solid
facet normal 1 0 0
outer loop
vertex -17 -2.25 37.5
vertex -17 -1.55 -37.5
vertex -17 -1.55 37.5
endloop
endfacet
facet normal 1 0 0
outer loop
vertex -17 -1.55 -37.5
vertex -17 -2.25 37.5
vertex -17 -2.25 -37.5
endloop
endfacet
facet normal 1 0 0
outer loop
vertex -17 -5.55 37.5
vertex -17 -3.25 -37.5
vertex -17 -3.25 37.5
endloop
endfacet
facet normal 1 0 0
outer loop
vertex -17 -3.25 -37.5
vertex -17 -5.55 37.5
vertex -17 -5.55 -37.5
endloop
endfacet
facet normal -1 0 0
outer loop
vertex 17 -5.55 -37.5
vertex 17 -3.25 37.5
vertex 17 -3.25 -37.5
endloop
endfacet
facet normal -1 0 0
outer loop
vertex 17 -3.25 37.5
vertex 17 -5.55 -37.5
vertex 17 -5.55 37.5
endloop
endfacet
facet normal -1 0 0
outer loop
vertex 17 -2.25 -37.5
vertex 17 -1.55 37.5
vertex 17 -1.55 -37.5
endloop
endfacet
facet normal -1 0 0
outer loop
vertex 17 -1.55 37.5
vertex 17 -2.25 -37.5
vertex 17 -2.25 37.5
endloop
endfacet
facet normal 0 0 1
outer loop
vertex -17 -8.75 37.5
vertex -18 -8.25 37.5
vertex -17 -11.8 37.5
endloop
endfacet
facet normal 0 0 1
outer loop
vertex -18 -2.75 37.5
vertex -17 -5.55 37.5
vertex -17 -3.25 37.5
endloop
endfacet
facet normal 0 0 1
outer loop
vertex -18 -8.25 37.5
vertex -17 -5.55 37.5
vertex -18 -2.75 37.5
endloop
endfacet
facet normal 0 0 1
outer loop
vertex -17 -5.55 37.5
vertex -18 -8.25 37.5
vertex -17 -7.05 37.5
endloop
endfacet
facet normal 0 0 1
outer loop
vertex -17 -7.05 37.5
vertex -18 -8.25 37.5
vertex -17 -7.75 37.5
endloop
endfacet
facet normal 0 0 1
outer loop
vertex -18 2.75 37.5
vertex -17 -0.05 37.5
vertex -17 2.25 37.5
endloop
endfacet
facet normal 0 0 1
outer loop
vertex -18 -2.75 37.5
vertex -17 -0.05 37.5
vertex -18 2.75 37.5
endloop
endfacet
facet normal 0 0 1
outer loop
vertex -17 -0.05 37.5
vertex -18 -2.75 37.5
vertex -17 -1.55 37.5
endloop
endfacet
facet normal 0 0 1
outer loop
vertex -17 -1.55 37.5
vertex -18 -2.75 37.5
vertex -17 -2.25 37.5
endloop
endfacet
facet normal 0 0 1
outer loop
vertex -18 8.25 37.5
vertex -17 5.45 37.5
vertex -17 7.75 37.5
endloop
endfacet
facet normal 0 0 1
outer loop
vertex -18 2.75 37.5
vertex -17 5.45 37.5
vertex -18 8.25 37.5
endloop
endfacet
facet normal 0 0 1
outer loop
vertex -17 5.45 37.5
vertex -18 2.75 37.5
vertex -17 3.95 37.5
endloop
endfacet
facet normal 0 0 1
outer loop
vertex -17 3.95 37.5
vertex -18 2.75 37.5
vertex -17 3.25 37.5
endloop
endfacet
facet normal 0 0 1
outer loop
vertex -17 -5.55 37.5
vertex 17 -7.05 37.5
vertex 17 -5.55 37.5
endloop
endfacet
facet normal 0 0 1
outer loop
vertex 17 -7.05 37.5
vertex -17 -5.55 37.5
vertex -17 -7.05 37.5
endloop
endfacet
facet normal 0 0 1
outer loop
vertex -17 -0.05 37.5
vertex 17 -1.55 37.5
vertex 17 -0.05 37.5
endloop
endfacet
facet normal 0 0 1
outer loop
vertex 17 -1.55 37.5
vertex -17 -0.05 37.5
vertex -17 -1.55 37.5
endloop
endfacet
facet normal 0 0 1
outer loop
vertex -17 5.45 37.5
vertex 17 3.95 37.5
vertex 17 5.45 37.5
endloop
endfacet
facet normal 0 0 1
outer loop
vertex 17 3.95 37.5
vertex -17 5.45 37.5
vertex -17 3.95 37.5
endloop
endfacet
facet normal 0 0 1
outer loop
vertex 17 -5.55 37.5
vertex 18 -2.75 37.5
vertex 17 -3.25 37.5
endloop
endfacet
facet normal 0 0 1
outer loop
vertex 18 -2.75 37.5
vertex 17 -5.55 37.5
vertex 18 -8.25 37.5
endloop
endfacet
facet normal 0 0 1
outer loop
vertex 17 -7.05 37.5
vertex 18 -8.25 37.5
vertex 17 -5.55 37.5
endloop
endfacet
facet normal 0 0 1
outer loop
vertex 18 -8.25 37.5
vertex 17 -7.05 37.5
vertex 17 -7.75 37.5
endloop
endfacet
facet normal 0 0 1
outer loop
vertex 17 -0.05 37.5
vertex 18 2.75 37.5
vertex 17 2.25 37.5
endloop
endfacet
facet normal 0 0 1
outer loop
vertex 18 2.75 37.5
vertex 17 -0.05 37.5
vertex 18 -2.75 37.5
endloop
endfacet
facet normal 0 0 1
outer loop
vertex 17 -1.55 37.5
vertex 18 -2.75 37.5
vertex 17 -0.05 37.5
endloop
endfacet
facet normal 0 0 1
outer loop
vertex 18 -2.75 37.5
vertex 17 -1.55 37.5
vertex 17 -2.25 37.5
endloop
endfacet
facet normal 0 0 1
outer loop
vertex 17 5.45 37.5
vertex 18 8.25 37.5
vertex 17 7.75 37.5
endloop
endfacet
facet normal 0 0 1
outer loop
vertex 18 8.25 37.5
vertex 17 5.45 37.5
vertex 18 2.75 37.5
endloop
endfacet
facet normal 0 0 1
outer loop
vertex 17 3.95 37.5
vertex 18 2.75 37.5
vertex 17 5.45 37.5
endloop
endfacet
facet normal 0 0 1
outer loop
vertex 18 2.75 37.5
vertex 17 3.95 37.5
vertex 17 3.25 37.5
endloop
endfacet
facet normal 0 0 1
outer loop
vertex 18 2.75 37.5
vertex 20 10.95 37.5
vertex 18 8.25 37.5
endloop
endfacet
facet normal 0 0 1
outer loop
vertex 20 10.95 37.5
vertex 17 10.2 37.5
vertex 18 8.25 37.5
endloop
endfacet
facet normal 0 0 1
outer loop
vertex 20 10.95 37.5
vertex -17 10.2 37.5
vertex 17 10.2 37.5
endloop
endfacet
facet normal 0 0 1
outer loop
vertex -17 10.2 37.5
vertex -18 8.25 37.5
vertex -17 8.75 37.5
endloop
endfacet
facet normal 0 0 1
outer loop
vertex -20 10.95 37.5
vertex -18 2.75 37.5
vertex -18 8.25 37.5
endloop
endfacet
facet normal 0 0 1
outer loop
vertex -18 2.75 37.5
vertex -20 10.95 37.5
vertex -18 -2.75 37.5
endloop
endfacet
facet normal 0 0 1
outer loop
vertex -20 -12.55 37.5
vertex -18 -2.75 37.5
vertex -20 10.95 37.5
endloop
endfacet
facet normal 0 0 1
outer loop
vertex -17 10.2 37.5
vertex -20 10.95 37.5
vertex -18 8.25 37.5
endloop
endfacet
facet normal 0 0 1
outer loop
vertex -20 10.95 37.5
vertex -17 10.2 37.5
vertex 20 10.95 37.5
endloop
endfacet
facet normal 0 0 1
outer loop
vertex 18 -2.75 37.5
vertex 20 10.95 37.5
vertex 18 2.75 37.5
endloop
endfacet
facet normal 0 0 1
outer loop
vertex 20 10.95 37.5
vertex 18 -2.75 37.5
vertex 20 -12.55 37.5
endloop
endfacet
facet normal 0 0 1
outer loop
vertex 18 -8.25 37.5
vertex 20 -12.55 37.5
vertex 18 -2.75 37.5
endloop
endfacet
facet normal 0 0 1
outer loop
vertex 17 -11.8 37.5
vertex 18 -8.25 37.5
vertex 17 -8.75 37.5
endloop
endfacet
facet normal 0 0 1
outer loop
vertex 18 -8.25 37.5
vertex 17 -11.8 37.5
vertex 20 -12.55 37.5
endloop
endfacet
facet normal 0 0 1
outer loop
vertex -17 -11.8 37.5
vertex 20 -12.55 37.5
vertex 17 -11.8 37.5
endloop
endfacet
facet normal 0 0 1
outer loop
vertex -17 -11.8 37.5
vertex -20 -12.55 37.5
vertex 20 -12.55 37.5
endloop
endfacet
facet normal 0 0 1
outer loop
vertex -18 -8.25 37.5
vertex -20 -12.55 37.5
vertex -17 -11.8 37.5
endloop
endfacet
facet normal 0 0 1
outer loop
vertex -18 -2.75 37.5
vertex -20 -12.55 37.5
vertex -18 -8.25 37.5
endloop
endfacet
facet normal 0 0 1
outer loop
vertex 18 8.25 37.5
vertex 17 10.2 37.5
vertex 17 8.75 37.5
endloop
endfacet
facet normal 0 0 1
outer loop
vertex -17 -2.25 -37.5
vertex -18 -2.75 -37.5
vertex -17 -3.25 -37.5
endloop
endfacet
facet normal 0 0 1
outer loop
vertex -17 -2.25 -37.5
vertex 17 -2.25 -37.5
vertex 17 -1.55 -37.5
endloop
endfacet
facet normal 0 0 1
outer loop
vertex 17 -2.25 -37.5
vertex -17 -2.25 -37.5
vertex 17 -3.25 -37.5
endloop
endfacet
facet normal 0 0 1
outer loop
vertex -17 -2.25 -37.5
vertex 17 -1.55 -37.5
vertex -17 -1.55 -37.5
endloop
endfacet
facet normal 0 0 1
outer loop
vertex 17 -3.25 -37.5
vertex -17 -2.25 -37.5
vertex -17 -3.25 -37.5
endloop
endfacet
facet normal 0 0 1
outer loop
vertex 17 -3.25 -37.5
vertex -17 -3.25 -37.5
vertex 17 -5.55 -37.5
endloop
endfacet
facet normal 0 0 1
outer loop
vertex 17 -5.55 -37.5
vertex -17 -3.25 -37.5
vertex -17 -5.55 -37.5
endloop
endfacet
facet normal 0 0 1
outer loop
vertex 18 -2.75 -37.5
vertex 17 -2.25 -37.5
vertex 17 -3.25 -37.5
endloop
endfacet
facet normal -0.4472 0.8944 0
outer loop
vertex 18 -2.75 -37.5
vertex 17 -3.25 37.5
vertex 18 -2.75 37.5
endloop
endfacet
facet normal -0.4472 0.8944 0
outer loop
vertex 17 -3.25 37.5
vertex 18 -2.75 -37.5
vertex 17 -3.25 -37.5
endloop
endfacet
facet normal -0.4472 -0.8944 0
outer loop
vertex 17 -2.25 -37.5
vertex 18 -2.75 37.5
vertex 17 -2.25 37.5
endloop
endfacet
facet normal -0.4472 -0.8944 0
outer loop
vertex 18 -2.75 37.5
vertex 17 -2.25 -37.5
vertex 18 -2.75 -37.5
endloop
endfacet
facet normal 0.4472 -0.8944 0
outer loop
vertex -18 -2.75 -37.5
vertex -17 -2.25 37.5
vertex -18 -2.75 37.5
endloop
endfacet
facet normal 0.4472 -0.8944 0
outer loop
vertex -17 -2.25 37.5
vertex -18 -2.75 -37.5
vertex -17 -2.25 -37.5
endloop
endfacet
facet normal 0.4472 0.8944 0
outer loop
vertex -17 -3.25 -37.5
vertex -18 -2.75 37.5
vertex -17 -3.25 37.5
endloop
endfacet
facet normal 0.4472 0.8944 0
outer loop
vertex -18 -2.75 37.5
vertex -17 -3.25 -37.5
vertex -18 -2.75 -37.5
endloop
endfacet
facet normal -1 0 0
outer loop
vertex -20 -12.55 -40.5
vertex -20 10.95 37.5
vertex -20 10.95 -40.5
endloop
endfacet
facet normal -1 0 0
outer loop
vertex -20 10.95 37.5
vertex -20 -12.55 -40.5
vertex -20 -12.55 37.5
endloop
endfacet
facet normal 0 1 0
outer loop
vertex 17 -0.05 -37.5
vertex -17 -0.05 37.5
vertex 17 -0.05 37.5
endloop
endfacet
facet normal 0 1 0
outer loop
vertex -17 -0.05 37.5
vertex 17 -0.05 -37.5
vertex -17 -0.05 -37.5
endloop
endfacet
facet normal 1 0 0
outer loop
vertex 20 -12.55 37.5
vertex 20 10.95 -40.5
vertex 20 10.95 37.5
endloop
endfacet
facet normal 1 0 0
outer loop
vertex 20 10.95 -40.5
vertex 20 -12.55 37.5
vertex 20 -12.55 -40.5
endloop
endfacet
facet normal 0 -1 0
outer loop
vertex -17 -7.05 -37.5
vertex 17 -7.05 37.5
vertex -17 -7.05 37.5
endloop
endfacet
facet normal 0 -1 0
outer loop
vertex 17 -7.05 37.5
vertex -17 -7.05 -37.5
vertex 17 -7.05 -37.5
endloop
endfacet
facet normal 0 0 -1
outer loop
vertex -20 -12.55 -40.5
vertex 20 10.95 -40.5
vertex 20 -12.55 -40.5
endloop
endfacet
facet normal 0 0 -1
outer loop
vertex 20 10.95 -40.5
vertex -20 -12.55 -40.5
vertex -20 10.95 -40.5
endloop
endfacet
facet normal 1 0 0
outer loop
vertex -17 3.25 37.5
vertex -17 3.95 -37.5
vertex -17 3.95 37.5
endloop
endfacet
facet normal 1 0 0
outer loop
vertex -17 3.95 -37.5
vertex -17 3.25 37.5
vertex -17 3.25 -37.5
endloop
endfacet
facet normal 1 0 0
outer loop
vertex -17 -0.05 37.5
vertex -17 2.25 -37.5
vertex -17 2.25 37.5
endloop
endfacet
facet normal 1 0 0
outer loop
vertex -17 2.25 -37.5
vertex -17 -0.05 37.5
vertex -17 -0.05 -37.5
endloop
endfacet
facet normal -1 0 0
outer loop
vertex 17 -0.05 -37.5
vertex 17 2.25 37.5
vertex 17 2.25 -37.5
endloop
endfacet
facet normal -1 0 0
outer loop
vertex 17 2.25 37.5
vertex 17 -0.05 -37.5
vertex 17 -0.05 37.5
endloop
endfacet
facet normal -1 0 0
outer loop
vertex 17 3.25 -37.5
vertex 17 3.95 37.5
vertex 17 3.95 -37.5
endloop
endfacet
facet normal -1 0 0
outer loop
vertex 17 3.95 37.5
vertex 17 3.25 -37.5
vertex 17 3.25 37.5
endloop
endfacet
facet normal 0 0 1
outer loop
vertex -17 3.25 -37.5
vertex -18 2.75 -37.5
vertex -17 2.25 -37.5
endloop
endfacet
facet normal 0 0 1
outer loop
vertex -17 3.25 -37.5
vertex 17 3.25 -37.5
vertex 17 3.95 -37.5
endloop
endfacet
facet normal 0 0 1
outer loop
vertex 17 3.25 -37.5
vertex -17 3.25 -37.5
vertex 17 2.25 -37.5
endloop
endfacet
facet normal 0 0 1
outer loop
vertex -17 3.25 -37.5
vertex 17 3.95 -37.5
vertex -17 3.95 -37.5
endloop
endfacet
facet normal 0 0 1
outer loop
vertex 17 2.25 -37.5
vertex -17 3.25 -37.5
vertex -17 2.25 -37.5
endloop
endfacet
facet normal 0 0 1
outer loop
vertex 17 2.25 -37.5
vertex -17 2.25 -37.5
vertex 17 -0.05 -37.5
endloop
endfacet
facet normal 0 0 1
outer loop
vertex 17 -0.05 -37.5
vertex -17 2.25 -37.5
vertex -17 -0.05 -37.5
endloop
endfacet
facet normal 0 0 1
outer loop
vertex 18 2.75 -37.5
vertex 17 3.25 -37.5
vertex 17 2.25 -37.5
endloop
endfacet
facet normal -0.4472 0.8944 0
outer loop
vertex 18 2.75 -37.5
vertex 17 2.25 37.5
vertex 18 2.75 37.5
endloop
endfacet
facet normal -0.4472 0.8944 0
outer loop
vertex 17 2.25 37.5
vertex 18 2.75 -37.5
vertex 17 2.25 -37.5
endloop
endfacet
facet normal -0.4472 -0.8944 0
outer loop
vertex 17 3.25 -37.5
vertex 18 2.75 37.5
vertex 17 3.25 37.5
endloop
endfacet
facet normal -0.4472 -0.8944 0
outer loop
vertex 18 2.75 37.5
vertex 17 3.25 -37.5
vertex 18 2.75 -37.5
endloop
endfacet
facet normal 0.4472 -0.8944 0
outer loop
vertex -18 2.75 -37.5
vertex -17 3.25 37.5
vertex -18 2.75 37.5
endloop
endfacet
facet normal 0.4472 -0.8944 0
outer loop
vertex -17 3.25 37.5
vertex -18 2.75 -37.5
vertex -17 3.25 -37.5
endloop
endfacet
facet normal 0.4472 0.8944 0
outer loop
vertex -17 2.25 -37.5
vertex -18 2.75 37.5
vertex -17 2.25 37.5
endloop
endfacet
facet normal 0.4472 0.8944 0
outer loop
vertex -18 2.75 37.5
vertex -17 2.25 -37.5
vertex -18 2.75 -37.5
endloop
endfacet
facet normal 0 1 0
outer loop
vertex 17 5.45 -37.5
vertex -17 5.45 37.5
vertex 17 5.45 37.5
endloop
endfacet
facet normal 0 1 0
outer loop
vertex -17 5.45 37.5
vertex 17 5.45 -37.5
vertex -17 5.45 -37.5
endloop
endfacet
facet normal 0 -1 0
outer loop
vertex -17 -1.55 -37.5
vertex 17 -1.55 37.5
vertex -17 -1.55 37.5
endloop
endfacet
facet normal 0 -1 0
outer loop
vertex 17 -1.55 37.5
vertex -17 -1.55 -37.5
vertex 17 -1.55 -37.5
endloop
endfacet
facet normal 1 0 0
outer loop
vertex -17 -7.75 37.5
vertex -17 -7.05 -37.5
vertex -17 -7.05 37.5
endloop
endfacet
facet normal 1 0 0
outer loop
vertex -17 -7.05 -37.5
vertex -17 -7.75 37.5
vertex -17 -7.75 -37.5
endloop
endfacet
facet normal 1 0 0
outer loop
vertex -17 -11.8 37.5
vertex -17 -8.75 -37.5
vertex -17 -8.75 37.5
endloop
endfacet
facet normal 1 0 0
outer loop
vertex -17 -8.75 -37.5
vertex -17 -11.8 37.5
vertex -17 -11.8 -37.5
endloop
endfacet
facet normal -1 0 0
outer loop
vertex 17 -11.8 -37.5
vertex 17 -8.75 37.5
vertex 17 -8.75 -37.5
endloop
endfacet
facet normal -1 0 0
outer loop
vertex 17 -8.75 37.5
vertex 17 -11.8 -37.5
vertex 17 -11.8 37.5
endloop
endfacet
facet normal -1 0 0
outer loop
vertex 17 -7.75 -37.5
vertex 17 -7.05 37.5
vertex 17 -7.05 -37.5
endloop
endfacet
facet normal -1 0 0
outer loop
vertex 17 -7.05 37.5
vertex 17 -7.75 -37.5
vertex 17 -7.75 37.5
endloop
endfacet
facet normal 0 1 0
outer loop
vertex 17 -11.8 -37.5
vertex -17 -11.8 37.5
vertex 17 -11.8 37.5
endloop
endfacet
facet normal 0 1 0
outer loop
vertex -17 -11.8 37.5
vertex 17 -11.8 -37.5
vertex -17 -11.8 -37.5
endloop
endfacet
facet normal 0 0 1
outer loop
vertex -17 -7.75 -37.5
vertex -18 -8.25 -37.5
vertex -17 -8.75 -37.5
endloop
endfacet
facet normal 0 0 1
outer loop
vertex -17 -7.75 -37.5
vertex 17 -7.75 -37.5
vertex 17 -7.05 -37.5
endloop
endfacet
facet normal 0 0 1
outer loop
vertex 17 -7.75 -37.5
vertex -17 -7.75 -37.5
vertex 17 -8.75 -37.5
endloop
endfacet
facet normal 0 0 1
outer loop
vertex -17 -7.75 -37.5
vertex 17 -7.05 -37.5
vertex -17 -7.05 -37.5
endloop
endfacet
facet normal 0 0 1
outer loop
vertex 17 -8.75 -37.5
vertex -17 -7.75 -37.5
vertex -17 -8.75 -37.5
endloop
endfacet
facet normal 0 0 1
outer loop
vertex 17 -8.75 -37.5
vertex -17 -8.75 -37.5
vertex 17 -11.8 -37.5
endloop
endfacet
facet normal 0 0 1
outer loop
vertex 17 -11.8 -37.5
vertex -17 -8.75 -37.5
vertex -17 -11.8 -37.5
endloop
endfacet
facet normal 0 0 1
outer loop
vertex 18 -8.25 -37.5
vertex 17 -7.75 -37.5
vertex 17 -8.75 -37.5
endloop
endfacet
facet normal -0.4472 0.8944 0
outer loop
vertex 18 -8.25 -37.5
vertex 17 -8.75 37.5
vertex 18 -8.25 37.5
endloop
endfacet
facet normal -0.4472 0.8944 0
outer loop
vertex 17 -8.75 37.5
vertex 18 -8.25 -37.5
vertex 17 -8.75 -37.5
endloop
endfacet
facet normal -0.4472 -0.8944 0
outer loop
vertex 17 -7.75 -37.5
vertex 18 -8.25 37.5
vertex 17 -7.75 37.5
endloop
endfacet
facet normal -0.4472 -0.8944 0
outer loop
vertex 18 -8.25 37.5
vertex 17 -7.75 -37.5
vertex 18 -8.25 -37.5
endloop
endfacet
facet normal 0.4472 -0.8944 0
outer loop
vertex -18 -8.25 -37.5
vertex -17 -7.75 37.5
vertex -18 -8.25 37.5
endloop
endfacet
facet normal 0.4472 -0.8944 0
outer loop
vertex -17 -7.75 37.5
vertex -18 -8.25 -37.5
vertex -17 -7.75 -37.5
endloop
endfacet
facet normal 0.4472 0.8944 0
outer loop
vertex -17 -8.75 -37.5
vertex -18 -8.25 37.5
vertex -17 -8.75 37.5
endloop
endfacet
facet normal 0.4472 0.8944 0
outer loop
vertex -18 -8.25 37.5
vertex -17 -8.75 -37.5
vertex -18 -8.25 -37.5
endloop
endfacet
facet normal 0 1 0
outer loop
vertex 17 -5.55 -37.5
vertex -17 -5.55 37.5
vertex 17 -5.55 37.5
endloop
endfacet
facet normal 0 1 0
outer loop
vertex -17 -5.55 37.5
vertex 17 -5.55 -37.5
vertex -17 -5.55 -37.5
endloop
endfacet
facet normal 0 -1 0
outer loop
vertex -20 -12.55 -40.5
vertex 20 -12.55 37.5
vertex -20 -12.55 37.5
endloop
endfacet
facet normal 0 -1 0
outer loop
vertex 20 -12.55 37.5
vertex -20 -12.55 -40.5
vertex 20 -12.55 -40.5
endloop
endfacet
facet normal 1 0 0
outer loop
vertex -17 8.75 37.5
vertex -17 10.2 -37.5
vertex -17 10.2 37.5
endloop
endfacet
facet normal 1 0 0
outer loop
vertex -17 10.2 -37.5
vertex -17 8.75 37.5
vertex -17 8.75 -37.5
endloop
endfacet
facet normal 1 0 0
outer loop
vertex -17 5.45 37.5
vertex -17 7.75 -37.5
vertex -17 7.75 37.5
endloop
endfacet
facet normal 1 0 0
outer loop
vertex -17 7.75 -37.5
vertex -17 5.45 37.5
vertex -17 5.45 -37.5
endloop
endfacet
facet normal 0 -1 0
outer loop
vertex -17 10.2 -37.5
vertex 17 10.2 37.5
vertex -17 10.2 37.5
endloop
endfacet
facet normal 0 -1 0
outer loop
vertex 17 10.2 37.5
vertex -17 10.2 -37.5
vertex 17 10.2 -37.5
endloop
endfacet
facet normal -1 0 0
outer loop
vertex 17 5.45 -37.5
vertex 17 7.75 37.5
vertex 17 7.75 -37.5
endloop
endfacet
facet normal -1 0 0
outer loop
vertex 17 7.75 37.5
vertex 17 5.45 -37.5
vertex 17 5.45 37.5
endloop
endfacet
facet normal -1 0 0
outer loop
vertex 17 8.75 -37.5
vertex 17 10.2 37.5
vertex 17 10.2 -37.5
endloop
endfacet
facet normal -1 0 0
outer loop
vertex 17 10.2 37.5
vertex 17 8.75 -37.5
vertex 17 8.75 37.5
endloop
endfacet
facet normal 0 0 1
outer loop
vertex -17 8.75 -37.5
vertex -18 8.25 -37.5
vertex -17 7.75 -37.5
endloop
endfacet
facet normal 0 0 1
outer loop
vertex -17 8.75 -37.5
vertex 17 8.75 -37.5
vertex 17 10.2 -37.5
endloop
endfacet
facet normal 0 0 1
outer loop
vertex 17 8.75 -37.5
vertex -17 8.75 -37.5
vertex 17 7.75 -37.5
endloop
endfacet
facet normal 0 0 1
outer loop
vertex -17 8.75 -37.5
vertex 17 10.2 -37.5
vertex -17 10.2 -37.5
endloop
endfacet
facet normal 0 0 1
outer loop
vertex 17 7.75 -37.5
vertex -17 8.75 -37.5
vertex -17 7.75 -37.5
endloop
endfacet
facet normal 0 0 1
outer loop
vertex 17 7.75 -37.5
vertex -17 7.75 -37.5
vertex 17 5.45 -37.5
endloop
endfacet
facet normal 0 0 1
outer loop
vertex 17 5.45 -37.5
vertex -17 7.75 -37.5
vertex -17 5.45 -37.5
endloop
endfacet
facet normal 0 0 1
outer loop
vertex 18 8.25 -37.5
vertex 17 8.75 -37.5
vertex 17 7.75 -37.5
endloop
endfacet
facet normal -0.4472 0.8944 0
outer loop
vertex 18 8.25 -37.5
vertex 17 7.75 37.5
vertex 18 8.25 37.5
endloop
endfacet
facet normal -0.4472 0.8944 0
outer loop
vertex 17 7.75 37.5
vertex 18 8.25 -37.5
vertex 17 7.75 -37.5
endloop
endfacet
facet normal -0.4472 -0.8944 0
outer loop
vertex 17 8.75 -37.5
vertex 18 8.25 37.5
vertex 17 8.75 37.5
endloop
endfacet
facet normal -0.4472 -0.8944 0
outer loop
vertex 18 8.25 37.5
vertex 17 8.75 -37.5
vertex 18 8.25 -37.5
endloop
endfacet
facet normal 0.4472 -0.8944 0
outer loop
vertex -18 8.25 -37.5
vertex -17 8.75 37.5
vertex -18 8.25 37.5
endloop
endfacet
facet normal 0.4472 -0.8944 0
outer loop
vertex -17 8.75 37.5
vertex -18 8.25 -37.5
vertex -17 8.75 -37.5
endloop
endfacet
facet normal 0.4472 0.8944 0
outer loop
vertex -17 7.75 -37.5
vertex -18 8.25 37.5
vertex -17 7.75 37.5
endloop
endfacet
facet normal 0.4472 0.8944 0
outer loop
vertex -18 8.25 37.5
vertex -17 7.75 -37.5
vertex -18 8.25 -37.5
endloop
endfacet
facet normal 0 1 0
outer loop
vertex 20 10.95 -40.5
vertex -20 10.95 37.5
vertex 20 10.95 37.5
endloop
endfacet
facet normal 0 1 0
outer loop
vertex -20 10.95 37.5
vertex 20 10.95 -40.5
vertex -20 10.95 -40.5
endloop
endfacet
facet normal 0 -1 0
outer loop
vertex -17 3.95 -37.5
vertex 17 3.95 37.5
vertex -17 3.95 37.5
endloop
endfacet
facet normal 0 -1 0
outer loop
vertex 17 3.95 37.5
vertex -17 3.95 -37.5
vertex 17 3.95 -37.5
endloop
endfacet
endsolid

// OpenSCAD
module fillet(r, h) {
    translate([r / 2, r / 2, 0])
        difference() {
            cube([r + 0.01, r + 0.01, h], center = true);
            translate([r/2, r/2, 0])
                cylinder(r = r, h = h + 1, center = true);
        }
}


module rail(x,y,z,a){
    rotate([90,a,0])
    translate([x,y,x])
    linear_extrude(height = 75, scale = 1.0, center=true) 
    polygon(
        points = [[-0.5,-0.5],[0.5,-0.5],[0,0.5]],
        paths=[[0,1,2]]
    );
}

module case(y){
    translate([0,y,0])
    rotate([-90,0,0])
    union(){
        difference(){
            translate([0,0,-0.8])cube([40,75,7],true);
            union(){
                translate([0,0,-0.8])cube([34,75,5.5],true);
                rail(0,17.5,0,90);
                rail(0,17.5,0,-90);
            }
        }
    translate([0,39,-0.8])cube([40,3,7], true);
    }
}

case(-8.25);
case(-2.75);
case(2.75);
case(8.25);
